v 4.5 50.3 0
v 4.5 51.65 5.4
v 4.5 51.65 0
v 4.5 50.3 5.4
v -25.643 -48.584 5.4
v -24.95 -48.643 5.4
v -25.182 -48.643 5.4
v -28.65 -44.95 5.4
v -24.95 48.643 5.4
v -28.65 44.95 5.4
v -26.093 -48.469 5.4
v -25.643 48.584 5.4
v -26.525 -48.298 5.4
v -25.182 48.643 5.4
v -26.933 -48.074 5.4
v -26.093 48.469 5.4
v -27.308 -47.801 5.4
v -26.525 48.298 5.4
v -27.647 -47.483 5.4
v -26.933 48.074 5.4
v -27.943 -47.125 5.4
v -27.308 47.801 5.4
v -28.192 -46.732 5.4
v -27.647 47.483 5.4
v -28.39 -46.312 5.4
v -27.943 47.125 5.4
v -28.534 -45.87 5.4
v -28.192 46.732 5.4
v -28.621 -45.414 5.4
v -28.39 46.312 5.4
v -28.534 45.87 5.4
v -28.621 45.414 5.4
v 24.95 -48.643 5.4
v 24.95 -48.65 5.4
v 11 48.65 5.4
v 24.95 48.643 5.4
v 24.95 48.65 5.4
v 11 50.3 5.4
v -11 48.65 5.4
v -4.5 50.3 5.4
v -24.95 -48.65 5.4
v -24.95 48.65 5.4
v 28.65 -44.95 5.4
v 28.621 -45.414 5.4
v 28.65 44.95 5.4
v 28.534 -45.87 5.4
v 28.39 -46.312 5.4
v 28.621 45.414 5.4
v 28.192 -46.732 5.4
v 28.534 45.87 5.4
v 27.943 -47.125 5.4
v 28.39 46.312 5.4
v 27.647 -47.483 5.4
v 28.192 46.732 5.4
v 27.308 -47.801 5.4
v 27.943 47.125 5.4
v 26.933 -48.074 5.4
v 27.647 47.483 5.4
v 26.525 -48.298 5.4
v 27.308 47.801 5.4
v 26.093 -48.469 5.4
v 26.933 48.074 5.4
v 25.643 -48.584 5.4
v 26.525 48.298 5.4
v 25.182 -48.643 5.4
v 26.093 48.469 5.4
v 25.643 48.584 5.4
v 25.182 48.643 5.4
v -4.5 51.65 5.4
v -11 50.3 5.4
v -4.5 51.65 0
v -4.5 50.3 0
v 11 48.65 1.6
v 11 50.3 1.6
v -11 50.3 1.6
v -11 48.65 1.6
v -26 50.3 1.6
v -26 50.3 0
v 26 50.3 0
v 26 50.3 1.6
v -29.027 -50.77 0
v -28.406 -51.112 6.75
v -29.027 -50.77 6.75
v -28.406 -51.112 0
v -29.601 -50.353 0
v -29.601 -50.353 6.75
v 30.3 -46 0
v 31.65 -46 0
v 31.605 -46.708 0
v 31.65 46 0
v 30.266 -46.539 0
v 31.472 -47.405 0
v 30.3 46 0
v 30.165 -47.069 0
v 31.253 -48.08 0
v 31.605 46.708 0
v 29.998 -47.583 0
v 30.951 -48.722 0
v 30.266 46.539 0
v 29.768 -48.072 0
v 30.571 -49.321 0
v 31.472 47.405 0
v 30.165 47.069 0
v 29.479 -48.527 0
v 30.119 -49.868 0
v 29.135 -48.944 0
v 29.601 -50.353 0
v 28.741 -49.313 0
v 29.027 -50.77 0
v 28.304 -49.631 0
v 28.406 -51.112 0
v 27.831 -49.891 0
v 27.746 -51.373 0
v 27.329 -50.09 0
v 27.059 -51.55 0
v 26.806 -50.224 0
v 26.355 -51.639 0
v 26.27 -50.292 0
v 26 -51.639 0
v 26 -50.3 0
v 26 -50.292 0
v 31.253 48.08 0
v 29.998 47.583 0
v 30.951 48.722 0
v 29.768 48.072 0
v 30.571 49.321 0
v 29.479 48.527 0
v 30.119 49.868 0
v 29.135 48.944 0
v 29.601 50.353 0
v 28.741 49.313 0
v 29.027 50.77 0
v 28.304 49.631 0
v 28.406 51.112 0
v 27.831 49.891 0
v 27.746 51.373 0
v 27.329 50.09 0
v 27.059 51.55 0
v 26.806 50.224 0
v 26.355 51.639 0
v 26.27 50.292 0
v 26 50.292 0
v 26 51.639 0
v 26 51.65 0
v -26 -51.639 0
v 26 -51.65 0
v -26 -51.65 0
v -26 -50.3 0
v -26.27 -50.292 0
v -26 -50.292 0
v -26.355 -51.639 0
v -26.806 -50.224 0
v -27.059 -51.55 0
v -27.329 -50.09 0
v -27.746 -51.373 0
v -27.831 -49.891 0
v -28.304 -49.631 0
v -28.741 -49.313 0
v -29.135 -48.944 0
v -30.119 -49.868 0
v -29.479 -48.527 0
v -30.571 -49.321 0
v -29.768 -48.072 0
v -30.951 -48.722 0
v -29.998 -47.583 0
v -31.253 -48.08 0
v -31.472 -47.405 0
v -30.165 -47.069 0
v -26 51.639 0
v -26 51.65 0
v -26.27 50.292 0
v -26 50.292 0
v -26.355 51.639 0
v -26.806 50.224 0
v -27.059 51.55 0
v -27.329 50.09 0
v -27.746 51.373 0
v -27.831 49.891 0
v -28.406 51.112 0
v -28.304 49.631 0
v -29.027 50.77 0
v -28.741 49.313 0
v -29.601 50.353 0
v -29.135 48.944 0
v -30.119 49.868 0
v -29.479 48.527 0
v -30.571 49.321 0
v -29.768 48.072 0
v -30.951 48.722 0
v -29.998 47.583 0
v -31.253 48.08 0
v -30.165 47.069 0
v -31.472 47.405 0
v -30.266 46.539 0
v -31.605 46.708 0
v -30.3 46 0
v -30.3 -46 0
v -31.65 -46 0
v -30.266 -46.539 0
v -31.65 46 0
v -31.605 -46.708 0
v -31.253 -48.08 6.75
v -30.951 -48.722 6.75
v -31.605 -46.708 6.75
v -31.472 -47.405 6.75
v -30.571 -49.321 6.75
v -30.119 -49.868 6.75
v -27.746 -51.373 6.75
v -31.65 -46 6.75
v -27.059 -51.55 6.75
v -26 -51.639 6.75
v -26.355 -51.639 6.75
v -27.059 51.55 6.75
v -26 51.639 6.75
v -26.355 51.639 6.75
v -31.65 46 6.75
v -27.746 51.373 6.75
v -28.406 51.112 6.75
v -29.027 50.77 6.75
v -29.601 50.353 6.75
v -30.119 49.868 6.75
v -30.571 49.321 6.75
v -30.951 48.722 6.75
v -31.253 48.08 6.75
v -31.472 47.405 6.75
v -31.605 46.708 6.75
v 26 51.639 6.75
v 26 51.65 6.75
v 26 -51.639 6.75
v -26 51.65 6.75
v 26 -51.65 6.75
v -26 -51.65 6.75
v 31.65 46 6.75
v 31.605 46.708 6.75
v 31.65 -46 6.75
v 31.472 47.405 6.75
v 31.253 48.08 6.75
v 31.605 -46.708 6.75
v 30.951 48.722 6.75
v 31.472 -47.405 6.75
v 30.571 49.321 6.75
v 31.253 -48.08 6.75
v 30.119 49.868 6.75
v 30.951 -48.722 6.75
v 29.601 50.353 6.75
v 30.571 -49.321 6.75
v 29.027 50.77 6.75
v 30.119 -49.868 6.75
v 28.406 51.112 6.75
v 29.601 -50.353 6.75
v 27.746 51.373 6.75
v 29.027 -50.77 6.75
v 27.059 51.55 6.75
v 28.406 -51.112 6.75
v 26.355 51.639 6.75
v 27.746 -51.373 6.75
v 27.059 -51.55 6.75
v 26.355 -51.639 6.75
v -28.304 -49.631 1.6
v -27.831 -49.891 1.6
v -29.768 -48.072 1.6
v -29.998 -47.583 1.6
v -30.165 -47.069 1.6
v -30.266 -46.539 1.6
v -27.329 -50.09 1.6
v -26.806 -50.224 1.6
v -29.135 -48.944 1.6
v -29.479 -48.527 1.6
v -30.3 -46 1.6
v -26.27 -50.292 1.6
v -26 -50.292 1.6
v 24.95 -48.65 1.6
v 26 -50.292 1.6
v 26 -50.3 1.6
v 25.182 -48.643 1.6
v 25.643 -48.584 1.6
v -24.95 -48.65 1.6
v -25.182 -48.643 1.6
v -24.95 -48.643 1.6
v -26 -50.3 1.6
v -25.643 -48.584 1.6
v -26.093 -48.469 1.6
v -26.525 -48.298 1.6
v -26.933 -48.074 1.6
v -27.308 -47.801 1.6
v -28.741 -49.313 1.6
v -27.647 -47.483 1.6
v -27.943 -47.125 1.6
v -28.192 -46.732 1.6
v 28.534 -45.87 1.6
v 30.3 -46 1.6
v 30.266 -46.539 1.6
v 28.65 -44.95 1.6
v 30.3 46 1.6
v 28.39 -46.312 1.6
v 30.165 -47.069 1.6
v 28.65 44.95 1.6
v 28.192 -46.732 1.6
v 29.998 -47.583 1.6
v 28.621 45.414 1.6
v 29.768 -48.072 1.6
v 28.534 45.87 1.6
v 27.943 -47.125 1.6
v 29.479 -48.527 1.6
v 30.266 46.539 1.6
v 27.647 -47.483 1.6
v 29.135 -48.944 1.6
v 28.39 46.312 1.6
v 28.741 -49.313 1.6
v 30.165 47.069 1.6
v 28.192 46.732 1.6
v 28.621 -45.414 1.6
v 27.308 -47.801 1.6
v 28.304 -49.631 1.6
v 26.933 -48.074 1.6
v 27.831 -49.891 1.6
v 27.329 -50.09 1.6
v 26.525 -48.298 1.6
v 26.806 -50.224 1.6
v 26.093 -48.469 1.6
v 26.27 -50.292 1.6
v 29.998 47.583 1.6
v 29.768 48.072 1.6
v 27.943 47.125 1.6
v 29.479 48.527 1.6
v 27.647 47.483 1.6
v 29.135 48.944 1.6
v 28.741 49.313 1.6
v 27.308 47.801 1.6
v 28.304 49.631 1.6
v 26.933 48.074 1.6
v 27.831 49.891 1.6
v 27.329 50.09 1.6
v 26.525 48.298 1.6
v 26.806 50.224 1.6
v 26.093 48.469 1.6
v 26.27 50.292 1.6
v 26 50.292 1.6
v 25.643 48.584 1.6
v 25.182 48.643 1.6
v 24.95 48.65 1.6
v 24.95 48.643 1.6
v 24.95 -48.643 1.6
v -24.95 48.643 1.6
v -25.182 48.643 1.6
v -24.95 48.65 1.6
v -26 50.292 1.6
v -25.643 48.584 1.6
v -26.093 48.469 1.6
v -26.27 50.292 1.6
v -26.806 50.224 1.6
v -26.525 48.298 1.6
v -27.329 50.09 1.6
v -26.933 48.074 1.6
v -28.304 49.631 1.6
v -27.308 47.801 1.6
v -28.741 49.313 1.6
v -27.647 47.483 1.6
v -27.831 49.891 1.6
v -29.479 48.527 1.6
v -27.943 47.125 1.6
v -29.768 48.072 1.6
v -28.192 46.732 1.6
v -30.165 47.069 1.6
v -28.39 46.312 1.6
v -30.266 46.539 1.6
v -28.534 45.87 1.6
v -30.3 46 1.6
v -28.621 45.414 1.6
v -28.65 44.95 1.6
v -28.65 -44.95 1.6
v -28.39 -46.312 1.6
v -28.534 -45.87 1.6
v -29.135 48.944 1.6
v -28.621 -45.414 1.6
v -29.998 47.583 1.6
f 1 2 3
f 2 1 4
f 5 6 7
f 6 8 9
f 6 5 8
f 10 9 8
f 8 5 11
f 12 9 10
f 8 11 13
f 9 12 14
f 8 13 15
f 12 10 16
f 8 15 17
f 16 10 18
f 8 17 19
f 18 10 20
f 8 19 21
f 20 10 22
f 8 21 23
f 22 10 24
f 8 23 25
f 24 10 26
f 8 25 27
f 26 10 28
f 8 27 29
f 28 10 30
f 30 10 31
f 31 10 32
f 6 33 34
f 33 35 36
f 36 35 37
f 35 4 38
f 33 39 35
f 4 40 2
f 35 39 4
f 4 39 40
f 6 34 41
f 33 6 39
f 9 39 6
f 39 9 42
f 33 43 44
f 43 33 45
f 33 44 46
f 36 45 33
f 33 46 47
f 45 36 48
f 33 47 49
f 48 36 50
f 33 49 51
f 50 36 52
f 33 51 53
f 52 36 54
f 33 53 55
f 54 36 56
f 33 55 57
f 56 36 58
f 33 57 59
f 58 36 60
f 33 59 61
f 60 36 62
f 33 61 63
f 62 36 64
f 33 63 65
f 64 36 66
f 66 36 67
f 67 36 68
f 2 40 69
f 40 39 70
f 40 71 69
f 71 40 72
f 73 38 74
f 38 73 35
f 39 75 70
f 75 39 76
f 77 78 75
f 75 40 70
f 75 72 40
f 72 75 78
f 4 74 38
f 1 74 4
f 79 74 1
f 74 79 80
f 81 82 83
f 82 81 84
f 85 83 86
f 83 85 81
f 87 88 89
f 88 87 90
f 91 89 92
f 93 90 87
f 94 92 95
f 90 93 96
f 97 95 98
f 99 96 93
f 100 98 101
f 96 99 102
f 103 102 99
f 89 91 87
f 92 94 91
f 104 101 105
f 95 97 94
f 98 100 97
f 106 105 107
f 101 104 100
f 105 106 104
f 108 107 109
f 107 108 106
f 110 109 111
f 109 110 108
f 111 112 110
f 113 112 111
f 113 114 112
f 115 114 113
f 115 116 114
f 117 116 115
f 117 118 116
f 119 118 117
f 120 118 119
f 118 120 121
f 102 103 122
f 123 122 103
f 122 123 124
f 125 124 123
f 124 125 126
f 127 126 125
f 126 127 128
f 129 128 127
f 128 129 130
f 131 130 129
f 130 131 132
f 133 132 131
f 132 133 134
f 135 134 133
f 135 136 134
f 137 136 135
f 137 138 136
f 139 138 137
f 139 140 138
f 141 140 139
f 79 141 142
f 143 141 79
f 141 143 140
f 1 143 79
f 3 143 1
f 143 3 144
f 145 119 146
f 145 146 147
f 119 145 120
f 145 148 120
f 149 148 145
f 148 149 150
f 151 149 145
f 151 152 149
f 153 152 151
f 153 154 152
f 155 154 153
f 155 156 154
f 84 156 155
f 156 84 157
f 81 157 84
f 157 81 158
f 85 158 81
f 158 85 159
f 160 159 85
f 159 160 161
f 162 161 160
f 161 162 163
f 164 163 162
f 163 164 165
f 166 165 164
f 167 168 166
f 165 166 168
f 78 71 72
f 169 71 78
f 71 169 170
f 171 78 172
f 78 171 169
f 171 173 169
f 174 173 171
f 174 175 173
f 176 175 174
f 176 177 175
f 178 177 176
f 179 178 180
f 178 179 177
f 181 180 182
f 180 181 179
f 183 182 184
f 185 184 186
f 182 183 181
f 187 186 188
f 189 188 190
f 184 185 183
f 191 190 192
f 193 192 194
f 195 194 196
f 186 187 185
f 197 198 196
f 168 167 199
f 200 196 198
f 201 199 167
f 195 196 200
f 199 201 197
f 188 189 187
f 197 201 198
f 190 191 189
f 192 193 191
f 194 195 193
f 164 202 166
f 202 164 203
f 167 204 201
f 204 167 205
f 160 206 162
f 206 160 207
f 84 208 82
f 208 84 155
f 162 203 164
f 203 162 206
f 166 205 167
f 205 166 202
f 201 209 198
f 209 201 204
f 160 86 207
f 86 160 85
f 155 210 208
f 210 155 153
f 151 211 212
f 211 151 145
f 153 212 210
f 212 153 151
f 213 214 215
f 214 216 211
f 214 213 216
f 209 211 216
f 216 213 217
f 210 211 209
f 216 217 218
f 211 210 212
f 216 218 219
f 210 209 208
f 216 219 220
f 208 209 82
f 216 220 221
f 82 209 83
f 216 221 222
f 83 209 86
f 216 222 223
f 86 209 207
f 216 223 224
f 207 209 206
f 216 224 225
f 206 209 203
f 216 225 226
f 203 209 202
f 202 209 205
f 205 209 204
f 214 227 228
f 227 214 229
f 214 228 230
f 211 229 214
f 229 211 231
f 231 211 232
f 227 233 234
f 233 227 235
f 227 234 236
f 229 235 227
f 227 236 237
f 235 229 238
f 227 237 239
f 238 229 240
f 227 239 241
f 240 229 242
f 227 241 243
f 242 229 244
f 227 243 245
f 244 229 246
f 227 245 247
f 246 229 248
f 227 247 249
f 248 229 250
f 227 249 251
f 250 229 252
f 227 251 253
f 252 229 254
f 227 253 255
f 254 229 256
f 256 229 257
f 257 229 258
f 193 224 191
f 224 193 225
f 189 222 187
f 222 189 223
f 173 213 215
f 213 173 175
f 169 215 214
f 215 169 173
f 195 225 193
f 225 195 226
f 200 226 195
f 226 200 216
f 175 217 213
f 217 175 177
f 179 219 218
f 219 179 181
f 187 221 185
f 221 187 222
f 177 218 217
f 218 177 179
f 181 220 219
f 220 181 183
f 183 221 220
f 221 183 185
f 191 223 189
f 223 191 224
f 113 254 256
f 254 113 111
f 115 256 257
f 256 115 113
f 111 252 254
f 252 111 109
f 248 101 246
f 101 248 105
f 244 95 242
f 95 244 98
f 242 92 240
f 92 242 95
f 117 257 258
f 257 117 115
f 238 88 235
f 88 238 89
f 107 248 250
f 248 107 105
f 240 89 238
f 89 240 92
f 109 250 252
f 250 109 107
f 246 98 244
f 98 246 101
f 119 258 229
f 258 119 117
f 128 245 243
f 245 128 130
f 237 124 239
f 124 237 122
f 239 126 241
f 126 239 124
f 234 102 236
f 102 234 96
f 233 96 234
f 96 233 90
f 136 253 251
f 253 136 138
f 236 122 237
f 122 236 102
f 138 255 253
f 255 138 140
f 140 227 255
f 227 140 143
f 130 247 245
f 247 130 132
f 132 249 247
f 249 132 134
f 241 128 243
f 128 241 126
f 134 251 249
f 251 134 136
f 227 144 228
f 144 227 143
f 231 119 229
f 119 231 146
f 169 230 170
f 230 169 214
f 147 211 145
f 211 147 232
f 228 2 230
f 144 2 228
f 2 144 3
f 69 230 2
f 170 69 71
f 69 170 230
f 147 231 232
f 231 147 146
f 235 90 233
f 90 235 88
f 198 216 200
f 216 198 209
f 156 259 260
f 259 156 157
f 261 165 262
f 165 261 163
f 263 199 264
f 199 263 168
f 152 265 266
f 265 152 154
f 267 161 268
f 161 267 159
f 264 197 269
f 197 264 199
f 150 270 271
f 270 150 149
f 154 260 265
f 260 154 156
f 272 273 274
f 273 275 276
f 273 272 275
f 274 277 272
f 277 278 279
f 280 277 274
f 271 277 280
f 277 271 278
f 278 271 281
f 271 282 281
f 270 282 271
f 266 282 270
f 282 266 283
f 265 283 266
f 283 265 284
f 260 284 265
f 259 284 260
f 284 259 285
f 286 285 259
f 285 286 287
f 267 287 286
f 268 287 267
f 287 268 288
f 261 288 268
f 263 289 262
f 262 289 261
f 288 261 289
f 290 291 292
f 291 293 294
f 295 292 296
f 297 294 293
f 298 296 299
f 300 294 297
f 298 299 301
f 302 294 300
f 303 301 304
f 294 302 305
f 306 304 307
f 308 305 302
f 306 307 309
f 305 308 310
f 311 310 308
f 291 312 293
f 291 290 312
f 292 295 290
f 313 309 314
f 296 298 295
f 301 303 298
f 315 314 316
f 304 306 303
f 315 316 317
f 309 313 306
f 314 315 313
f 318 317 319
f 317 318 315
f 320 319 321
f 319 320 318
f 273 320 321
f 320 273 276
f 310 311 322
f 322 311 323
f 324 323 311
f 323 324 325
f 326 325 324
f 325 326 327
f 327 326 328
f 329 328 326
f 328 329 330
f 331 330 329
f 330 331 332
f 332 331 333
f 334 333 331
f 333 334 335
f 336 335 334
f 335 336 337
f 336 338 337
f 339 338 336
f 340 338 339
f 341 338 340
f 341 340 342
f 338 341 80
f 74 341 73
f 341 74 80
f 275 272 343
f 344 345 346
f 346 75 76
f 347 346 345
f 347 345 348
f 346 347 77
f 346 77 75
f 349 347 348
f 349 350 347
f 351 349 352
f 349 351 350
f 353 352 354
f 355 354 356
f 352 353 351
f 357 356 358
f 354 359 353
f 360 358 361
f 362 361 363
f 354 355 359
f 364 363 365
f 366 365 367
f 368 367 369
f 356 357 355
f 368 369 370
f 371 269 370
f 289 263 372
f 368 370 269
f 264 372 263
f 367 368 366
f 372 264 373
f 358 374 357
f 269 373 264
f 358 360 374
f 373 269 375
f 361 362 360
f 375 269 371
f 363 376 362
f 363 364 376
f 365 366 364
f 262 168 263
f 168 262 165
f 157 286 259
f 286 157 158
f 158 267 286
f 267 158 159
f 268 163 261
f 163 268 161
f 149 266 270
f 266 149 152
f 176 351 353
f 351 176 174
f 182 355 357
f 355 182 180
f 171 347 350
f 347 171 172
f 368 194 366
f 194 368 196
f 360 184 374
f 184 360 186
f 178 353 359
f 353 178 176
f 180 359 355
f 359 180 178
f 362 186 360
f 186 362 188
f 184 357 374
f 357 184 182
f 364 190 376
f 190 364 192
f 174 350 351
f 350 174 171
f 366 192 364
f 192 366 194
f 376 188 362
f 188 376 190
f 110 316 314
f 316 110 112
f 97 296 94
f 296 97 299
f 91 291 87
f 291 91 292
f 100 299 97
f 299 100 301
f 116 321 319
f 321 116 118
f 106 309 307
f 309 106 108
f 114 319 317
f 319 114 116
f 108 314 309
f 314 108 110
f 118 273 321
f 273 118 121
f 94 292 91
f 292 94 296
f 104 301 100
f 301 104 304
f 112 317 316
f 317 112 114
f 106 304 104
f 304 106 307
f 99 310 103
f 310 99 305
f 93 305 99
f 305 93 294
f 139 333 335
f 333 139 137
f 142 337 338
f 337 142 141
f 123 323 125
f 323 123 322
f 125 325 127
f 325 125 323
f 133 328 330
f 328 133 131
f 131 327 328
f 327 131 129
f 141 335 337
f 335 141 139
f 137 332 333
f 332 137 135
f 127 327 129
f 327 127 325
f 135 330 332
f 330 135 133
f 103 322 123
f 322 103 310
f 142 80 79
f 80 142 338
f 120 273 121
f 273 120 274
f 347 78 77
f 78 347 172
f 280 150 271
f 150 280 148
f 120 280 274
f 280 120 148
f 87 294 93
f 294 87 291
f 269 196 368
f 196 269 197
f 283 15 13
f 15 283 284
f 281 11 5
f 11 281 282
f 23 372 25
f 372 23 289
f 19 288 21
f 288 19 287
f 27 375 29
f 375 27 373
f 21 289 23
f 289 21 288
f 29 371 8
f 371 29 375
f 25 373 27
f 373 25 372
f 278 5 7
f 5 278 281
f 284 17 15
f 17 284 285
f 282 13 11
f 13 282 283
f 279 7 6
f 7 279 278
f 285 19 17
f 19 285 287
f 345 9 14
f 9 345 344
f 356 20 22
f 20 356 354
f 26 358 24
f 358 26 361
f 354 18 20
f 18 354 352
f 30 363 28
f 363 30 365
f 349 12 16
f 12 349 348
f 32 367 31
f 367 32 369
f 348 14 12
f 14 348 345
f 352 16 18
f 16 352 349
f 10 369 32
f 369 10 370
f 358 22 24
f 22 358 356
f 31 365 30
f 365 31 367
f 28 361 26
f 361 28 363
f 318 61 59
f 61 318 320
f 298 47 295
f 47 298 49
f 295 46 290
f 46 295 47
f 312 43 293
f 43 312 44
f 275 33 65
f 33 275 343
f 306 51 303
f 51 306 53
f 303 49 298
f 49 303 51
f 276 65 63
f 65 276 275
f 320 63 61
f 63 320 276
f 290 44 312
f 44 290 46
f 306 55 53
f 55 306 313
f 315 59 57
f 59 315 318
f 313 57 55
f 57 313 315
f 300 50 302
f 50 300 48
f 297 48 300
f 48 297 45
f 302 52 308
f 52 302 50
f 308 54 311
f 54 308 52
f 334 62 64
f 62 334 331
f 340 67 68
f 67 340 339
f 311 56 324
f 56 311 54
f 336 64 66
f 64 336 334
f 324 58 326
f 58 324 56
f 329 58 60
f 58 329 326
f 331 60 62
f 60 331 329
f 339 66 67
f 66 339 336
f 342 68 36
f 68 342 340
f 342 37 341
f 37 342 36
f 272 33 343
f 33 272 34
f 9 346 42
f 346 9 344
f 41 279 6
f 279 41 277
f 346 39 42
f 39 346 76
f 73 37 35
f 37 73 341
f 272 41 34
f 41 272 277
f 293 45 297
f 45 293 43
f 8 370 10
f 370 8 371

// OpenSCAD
// file: rounded_box.scad
module rounded_box(w,d,h,r)
{
	union(){
		translate([-w/2+r, -d/2+r, 0]) cylinder(h, r, r);
		translate([-w/2+r, d/2-r, 0]) cylinder(h, r, r);
		translate([w/2-r, -d/2+r, 0]) cylinder(h, r, r);
		translate([w/2-r, d/2-r, 0]) cylinder(h, r, r);
		
		translate([-w/2+r, -d/2, 0]) cube([w-r*2,d,h]);
		translate([-w/2, -d/2+r, 0]) cube([w,d-r*2,h]);
	}
}
// main file
use <rounded_box.scad>

$fn=50;

w=60;
d=100;
h=1.6;
r=4;

o=.3;
t=0.45*3;
th=7;
i=2.54;

screwHoles = false;
difference() {
	
	union () {
		
		rd = 2.5;
		if (screwHoles) {
			translate([-w/2+i,d/2-i,h]) cylinder(th-h-h+t, rd, rd);	
			translate([+w/2-i,d/2-i,h]) cylinder(th-h-h+t, rd, rd);
		}

		difference() {
		
		
			rounded_box(o+o+w+t+t,o+o+d+t+t,th-h+t,r+o+t);
			

			// first stage pcb rim
			translate([0,0,-1])
			rounded_box(w+o+o,d+o+o,h+1,r+o);
			
			// second stage holding corner
			translate([0,0,-1])
			rounded_box(w-t-t,d-t-t,th-h+1,r-o);

		 // color("black") rounded_box(w,d,h,r);
		
		}
	}
	
	if(screwHoles) {
		translate([-w/2+i,d/2-i,0]) cylinder(th-t, 1, 1);
		translate([+w/2-i,d/2-i,0]) cylinder(th-t, 1, 1);
	}
	
	usbSocket();



}

if($preview) {
	color("black", 0.5)
	rounded_box(w,d,h,r);
}

if($preview) usbSocket();

module usbSocket() {
	usb = 9;
	color("red", 0.2)
	translate([-usb/2,d/2-usb/2,-usb+th-h])
	cube(usb);
	
	usb2 = 22;
	color("red", 0.2)
	translate([-usb2/2,d/2-usb2+o,-usb2+th-h])
	cube(usb2);
	
}
